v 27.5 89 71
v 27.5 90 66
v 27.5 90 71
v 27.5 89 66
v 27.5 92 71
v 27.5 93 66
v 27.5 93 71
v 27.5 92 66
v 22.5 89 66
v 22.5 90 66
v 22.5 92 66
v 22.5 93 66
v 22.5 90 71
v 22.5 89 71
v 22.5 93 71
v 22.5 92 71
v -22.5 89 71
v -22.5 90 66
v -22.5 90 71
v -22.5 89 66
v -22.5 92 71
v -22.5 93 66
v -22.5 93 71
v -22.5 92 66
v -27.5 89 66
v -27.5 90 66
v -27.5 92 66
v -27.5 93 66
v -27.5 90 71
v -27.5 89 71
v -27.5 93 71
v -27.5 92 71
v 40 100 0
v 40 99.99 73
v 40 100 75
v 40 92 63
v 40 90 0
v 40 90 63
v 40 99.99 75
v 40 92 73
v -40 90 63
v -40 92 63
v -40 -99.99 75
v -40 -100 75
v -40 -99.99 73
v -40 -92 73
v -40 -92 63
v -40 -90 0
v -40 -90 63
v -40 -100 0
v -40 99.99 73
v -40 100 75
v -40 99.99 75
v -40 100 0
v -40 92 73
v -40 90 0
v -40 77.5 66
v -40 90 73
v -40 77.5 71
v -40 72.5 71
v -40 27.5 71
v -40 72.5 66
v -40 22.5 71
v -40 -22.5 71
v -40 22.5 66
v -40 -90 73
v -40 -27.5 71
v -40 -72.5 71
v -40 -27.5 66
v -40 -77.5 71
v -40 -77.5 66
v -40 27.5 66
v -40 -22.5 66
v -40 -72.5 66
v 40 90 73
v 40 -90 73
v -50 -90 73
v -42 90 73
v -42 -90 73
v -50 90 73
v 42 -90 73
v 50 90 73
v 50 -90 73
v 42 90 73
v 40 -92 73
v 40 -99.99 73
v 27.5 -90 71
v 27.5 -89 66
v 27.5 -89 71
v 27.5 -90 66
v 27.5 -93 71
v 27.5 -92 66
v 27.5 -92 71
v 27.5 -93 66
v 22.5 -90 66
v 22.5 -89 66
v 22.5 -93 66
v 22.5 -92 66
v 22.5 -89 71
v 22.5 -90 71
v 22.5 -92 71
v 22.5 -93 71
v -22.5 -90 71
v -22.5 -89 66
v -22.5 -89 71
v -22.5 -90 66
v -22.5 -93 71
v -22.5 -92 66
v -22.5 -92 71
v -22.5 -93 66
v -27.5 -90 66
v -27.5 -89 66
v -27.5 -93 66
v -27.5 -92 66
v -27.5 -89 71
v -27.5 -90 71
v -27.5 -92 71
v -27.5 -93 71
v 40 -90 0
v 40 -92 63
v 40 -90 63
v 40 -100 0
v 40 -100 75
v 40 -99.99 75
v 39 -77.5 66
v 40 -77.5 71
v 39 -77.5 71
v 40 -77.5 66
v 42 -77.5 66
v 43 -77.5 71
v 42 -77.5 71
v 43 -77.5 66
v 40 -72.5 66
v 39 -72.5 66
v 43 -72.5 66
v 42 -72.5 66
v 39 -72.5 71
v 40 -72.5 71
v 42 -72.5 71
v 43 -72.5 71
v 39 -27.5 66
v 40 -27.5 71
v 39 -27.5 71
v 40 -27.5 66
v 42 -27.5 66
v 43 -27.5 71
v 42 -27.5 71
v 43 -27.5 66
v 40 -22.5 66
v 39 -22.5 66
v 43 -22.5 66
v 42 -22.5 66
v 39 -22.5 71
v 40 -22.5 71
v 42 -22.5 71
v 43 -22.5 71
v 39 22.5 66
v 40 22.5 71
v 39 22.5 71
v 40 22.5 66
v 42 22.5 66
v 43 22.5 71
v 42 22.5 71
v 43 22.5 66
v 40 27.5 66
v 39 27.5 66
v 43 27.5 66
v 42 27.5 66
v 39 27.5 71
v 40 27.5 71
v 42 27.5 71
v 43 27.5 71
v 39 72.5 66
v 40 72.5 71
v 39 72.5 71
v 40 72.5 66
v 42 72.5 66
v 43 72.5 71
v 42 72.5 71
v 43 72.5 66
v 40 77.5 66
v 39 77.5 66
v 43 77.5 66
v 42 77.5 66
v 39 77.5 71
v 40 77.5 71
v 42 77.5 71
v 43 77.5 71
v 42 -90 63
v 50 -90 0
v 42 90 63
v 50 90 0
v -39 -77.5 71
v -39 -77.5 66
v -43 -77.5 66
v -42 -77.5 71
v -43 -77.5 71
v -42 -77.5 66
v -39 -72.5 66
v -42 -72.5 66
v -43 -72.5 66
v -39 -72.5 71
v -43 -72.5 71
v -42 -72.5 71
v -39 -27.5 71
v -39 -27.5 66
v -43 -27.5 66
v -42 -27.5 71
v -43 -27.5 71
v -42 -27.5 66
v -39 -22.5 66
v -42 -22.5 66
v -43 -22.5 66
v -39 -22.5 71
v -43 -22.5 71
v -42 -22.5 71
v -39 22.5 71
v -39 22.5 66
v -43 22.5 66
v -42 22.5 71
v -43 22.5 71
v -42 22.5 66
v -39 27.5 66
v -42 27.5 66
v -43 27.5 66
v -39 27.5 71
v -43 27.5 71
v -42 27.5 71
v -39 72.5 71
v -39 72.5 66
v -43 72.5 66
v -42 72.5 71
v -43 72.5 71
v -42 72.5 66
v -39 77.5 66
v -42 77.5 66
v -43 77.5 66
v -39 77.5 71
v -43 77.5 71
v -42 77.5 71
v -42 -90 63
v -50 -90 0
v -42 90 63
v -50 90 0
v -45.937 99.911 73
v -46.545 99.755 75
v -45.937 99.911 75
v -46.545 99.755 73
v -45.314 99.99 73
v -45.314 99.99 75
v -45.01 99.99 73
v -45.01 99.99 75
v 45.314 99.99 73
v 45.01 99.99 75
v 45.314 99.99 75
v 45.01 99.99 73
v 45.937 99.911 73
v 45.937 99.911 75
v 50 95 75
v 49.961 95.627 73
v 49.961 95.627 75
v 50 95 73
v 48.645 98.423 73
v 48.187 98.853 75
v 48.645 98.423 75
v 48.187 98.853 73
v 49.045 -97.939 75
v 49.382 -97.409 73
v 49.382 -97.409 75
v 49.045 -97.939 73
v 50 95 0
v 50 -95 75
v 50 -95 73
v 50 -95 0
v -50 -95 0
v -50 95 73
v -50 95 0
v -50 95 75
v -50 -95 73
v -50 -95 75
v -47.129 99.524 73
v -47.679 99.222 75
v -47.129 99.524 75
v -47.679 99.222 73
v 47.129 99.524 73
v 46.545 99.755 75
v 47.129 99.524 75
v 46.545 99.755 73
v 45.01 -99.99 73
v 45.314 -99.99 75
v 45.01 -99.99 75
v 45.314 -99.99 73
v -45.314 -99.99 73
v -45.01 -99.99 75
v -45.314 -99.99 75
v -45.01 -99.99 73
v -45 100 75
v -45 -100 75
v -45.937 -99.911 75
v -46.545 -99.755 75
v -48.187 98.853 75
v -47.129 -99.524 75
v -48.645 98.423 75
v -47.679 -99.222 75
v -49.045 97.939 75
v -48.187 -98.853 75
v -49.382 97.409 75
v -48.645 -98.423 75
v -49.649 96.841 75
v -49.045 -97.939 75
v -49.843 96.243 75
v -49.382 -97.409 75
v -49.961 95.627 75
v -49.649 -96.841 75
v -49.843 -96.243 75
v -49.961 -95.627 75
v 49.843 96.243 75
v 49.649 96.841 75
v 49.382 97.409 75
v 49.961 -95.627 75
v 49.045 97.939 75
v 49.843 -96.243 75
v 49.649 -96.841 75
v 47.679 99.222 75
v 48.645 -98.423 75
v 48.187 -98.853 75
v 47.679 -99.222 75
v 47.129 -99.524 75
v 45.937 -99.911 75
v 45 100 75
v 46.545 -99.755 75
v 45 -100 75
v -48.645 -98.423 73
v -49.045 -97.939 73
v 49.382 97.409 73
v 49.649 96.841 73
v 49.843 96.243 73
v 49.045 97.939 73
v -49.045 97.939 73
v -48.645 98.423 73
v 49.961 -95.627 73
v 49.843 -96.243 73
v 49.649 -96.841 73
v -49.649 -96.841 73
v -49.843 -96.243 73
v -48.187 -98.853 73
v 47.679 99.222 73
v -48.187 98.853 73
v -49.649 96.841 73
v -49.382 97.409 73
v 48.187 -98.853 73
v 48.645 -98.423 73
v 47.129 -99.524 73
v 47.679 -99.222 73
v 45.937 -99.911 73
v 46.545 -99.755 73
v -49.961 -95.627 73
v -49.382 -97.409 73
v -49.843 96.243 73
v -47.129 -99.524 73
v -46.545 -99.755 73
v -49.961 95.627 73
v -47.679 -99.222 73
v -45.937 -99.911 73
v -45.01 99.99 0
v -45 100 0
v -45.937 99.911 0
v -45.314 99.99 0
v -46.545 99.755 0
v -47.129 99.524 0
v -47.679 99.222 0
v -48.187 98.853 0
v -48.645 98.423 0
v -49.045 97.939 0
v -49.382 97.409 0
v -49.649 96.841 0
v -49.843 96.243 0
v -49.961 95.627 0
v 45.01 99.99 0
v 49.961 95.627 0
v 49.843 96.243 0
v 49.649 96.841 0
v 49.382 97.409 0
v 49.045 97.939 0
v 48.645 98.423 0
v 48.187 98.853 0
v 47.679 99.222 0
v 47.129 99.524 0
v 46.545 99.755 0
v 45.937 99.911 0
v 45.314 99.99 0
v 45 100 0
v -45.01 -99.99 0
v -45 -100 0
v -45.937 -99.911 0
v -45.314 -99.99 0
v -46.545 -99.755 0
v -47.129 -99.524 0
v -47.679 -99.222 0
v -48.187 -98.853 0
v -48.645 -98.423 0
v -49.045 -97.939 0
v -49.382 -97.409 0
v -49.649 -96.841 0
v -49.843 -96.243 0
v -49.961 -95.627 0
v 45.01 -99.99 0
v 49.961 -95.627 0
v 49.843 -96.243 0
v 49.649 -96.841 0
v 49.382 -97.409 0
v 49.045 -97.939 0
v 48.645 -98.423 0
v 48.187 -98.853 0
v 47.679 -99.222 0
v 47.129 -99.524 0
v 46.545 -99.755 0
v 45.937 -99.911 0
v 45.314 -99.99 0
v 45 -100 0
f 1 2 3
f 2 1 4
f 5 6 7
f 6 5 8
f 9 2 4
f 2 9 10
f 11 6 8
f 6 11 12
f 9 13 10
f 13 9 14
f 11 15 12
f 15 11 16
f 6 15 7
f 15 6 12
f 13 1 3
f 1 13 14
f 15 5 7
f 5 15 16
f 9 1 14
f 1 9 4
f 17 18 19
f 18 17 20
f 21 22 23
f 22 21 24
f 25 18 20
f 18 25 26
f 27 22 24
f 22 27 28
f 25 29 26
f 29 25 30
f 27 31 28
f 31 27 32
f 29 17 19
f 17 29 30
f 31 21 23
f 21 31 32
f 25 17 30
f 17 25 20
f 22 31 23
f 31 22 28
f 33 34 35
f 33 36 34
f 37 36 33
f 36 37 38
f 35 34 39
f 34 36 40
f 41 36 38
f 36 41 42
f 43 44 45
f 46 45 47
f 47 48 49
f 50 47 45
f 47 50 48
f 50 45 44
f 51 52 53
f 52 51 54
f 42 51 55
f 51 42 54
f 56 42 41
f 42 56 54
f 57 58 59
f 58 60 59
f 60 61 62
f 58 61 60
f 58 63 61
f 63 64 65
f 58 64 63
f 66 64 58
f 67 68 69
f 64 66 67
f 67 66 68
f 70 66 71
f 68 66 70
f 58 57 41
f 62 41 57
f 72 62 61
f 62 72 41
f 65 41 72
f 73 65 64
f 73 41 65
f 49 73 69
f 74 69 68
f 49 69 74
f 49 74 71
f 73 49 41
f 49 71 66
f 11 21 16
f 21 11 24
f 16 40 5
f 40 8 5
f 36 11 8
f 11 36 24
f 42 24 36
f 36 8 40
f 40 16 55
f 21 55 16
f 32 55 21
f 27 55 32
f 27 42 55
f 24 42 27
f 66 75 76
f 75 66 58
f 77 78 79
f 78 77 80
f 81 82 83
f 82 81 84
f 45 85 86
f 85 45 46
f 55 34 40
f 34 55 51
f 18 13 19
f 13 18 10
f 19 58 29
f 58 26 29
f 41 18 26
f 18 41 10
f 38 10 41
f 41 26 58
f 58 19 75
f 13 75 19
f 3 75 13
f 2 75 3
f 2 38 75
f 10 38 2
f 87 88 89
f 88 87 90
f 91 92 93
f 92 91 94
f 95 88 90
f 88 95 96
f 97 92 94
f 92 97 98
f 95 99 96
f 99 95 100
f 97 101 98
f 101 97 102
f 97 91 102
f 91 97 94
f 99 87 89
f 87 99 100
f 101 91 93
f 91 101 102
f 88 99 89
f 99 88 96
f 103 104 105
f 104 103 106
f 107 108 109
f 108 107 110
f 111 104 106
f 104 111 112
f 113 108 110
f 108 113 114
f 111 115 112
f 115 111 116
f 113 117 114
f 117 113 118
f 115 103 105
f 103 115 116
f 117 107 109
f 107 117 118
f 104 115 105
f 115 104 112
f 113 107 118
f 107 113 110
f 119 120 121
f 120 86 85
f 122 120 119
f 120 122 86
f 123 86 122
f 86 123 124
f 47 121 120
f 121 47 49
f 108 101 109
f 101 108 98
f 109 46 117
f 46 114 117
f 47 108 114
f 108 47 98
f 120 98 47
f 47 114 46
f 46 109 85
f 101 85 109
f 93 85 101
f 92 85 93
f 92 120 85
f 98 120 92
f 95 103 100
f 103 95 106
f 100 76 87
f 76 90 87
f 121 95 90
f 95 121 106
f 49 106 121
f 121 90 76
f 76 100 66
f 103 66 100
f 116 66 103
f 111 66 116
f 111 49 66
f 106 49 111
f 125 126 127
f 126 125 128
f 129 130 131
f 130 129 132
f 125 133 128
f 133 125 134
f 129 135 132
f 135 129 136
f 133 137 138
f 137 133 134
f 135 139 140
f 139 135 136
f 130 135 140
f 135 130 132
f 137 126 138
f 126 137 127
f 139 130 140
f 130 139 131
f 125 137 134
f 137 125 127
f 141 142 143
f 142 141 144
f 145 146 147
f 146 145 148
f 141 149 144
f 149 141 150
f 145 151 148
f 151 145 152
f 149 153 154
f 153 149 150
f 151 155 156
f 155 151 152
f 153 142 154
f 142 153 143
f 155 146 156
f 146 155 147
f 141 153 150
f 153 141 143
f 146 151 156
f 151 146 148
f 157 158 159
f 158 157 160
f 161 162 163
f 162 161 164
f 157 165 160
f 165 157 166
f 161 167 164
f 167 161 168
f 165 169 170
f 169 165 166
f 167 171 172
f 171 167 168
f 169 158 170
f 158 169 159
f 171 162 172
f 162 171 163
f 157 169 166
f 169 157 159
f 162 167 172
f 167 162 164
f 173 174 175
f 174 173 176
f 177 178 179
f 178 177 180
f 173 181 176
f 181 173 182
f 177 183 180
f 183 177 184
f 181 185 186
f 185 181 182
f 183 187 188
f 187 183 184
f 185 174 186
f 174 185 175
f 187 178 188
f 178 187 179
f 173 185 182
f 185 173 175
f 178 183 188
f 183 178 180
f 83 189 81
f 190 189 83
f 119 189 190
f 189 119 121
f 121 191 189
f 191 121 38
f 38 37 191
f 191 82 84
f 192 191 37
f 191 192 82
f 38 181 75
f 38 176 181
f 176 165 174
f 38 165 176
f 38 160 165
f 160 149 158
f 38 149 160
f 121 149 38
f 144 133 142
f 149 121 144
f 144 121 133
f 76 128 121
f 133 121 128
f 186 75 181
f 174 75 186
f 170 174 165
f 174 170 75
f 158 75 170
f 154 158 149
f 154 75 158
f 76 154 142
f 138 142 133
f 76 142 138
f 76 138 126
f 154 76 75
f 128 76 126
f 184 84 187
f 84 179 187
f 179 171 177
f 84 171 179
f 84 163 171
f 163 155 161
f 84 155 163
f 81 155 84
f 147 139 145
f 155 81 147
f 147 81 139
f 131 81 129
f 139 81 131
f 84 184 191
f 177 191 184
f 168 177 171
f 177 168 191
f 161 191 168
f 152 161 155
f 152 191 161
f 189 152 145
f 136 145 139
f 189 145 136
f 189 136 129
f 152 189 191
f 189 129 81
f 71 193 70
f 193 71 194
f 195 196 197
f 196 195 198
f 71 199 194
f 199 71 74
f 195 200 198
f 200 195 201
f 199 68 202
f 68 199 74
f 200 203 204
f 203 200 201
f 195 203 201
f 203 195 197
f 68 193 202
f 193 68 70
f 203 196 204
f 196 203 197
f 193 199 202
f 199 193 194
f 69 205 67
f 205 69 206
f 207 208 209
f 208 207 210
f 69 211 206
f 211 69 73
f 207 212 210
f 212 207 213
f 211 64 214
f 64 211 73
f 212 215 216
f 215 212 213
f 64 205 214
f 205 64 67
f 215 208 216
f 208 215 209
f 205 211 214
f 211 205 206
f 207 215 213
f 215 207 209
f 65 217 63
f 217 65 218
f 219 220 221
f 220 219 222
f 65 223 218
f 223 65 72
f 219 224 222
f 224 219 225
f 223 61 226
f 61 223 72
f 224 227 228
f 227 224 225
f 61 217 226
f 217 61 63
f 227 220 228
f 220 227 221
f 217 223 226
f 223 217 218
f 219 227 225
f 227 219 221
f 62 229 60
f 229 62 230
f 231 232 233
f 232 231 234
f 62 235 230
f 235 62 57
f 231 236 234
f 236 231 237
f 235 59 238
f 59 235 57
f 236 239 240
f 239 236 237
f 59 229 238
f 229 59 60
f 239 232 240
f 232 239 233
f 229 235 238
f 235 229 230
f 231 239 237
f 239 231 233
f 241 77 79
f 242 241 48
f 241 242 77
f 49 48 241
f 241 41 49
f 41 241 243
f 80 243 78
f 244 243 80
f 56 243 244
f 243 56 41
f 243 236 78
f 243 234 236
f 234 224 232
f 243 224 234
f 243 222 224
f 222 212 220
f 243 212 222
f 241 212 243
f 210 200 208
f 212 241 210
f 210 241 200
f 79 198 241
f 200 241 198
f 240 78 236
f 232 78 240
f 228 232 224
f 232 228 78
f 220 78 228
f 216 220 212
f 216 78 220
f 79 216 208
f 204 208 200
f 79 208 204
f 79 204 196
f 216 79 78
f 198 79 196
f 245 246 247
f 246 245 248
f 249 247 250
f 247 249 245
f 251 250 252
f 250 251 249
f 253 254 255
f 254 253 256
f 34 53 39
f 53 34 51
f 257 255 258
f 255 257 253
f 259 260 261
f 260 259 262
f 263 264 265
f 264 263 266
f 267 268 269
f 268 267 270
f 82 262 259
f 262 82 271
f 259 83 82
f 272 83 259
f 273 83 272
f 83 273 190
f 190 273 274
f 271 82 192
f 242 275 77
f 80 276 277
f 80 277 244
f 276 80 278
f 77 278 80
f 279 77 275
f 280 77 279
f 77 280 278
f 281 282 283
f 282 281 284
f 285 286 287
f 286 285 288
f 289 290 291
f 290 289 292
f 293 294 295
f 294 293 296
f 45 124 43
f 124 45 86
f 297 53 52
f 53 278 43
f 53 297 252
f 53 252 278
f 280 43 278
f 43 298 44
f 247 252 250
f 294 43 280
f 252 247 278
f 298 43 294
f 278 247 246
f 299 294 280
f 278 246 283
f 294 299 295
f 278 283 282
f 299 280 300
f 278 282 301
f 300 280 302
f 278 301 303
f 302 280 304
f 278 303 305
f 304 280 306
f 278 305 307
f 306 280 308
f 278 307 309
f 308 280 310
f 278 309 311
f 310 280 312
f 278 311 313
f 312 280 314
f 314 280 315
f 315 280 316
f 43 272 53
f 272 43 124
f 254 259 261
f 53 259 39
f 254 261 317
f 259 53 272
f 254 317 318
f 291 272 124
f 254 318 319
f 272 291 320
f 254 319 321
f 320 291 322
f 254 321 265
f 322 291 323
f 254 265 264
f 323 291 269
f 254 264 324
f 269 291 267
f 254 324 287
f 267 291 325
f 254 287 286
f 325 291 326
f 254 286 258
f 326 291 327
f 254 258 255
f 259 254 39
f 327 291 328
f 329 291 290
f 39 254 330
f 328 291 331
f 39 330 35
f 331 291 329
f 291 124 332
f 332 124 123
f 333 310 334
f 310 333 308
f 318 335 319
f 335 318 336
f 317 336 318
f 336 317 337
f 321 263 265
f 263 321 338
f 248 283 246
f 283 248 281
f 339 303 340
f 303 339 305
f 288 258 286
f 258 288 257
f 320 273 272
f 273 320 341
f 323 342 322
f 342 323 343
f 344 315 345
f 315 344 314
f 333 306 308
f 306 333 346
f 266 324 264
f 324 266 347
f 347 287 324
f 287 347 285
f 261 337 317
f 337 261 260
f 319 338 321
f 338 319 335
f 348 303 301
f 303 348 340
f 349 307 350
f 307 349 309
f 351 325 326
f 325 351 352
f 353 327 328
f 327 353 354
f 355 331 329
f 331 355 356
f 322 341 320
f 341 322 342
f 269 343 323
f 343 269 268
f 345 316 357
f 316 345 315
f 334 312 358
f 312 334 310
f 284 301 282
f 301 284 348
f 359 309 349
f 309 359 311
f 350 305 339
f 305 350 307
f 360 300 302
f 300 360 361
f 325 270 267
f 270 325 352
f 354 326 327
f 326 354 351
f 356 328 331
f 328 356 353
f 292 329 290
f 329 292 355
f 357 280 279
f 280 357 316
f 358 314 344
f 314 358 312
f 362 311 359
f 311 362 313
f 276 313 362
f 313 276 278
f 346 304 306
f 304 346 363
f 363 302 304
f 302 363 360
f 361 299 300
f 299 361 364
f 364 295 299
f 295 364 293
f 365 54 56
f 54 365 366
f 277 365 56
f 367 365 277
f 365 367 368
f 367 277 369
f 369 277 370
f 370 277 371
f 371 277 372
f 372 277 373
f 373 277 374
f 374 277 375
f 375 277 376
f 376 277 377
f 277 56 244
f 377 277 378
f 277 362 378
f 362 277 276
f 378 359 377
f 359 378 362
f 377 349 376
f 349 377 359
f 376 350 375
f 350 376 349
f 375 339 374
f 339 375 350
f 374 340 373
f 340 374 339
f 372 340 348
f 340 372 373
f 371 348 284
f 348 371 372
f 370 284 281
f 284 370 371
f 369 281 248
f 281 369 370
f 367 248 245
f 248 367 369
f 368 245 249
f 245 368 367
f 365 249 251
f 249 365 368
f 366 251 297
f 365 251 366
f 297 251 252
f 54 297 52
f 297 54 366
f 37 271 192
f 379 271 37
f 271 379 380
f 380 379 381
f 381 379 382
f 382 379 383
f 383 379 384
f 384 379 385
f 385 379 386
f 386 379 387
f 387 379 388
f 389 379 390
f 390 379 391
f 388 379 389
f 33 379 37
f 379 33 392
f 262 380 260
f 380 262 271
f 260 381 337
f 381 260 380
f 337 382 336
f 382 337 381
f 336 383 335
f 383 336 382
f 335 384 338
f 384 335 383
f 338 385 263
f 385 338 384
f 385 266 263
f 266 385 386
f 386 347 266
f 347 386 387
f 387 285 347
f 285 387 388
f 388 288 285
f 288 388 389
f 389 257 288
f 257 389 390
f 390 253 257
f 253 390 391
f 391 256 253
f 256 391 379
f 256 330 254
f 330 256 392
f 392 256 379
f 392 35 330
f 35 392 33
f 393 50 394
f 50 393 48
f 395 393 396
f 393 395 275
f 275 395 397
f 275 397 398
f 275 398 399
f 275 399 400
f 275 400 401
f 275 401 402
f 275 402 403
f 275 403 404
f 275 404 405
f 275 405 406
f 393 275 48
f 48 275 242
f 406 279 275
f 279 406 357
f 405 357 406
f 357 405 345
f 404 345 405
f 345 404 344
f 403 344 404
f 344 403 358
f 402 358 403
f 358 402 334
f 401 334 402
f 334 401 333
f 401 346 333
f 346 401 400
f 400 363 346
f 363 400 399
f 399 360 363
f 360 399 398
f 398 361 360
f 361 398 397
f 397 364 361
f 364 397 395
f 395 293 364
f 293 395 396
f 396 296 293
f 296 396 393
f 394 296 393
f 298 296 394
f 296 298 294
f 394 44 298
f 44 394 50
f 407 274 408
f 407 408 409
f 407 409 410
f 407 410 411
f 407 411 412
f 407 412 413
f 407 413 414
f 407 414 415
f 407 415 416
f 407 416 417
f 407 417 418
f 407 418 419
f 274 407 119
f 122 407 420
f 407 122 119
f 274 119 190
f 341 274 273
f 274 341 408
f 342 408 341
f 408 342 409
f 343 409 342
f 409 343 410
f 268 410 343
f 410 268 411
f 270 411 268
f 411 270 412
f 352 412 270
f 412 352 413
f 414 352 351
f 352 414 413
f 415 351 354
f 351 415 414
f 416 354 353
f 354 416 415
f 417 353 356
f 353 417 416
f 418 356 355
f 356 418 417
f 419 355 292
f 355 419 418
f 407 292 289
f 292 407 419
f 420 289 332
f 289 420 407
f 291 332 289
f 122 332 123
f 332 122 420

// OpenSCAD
lw = 5; //leg width
th = 75; //table height
td = [100,200]; //table dimensions
thickness = 2; //...for tabletop and supports
sh = 10; //support height

$fn=50; //number of fragments

translate([0,0,th]) rotate([0,180,0]) table();

module table(){
    // tabletop
    translate([-0.5*(td[0]-2*lw),-0.5*(td[1]-2*lw),0])
    minkowski()
    {
      cube([td[0]-2*lw,td[1]-2*lw,thickness*0.5]);
      cylinder(r=lw,thickness*0.5);
    }

    // supports
    translate([0,(td[1]-4*lw)*0.5,thickness])
    support(td[0]-4*lw,sh);
    mirror([0,1,0])
    translate([0,(td[1]-4*lw)*0.5,thickness]) support(td[0]-4*lw,sh);

    rotate([0,0,90])
    translate([0,(td[0]-4*lw)*0.5,thickness]) support(td[1]-4*lw,sh);
    rotate([0,0,90])
    mirror([0,1,0])
    translate([0,(td[0]-4*lw)*0.5,thickness]) support(td[1]-4*lw,sh);

    // legs
    translate([0.5*td[0]-lw,0.5*td[1]-lw,0.5*th]) leg();
    mirror([1,0,0]) translate([0.5*td[0]-lw,0.5*td[1]-lw,0.5*th]) leg();
    mirror([0,1,0]) translate([0.5*td[0]-lw,0.5*td[1]-lw,0.5*th]) leg();
    mirror([1,0,0]) mirror([0,1,0]) translate([0.5*td[0]-lw,0.5*td[1]-lw,0.5*th]) leg();
}

module support(width,height){
    color("Peru")
    translate([-0.5*width,0,0])
    cube([width,thickness,height]);
    mod = width%50;
    color("SlateGray") // power sockets
    for (i = [0.5*mod:50:width])
        translate([i-(0.5*width),0,0])
        translate([-2.5,-1,2])
        cube([5,4,5]);
}

module leg(){
color("Peru")
linear_extrude(height = th, center = true) {
    leg_crossec();
    }
}

module leg_crossec(){
    union() {
        circle(r=lw);
        polygon([[-lw,-lw],[lw,-lw],[lw,0],[0,lw],[-lw,lw]]);
    }
}
